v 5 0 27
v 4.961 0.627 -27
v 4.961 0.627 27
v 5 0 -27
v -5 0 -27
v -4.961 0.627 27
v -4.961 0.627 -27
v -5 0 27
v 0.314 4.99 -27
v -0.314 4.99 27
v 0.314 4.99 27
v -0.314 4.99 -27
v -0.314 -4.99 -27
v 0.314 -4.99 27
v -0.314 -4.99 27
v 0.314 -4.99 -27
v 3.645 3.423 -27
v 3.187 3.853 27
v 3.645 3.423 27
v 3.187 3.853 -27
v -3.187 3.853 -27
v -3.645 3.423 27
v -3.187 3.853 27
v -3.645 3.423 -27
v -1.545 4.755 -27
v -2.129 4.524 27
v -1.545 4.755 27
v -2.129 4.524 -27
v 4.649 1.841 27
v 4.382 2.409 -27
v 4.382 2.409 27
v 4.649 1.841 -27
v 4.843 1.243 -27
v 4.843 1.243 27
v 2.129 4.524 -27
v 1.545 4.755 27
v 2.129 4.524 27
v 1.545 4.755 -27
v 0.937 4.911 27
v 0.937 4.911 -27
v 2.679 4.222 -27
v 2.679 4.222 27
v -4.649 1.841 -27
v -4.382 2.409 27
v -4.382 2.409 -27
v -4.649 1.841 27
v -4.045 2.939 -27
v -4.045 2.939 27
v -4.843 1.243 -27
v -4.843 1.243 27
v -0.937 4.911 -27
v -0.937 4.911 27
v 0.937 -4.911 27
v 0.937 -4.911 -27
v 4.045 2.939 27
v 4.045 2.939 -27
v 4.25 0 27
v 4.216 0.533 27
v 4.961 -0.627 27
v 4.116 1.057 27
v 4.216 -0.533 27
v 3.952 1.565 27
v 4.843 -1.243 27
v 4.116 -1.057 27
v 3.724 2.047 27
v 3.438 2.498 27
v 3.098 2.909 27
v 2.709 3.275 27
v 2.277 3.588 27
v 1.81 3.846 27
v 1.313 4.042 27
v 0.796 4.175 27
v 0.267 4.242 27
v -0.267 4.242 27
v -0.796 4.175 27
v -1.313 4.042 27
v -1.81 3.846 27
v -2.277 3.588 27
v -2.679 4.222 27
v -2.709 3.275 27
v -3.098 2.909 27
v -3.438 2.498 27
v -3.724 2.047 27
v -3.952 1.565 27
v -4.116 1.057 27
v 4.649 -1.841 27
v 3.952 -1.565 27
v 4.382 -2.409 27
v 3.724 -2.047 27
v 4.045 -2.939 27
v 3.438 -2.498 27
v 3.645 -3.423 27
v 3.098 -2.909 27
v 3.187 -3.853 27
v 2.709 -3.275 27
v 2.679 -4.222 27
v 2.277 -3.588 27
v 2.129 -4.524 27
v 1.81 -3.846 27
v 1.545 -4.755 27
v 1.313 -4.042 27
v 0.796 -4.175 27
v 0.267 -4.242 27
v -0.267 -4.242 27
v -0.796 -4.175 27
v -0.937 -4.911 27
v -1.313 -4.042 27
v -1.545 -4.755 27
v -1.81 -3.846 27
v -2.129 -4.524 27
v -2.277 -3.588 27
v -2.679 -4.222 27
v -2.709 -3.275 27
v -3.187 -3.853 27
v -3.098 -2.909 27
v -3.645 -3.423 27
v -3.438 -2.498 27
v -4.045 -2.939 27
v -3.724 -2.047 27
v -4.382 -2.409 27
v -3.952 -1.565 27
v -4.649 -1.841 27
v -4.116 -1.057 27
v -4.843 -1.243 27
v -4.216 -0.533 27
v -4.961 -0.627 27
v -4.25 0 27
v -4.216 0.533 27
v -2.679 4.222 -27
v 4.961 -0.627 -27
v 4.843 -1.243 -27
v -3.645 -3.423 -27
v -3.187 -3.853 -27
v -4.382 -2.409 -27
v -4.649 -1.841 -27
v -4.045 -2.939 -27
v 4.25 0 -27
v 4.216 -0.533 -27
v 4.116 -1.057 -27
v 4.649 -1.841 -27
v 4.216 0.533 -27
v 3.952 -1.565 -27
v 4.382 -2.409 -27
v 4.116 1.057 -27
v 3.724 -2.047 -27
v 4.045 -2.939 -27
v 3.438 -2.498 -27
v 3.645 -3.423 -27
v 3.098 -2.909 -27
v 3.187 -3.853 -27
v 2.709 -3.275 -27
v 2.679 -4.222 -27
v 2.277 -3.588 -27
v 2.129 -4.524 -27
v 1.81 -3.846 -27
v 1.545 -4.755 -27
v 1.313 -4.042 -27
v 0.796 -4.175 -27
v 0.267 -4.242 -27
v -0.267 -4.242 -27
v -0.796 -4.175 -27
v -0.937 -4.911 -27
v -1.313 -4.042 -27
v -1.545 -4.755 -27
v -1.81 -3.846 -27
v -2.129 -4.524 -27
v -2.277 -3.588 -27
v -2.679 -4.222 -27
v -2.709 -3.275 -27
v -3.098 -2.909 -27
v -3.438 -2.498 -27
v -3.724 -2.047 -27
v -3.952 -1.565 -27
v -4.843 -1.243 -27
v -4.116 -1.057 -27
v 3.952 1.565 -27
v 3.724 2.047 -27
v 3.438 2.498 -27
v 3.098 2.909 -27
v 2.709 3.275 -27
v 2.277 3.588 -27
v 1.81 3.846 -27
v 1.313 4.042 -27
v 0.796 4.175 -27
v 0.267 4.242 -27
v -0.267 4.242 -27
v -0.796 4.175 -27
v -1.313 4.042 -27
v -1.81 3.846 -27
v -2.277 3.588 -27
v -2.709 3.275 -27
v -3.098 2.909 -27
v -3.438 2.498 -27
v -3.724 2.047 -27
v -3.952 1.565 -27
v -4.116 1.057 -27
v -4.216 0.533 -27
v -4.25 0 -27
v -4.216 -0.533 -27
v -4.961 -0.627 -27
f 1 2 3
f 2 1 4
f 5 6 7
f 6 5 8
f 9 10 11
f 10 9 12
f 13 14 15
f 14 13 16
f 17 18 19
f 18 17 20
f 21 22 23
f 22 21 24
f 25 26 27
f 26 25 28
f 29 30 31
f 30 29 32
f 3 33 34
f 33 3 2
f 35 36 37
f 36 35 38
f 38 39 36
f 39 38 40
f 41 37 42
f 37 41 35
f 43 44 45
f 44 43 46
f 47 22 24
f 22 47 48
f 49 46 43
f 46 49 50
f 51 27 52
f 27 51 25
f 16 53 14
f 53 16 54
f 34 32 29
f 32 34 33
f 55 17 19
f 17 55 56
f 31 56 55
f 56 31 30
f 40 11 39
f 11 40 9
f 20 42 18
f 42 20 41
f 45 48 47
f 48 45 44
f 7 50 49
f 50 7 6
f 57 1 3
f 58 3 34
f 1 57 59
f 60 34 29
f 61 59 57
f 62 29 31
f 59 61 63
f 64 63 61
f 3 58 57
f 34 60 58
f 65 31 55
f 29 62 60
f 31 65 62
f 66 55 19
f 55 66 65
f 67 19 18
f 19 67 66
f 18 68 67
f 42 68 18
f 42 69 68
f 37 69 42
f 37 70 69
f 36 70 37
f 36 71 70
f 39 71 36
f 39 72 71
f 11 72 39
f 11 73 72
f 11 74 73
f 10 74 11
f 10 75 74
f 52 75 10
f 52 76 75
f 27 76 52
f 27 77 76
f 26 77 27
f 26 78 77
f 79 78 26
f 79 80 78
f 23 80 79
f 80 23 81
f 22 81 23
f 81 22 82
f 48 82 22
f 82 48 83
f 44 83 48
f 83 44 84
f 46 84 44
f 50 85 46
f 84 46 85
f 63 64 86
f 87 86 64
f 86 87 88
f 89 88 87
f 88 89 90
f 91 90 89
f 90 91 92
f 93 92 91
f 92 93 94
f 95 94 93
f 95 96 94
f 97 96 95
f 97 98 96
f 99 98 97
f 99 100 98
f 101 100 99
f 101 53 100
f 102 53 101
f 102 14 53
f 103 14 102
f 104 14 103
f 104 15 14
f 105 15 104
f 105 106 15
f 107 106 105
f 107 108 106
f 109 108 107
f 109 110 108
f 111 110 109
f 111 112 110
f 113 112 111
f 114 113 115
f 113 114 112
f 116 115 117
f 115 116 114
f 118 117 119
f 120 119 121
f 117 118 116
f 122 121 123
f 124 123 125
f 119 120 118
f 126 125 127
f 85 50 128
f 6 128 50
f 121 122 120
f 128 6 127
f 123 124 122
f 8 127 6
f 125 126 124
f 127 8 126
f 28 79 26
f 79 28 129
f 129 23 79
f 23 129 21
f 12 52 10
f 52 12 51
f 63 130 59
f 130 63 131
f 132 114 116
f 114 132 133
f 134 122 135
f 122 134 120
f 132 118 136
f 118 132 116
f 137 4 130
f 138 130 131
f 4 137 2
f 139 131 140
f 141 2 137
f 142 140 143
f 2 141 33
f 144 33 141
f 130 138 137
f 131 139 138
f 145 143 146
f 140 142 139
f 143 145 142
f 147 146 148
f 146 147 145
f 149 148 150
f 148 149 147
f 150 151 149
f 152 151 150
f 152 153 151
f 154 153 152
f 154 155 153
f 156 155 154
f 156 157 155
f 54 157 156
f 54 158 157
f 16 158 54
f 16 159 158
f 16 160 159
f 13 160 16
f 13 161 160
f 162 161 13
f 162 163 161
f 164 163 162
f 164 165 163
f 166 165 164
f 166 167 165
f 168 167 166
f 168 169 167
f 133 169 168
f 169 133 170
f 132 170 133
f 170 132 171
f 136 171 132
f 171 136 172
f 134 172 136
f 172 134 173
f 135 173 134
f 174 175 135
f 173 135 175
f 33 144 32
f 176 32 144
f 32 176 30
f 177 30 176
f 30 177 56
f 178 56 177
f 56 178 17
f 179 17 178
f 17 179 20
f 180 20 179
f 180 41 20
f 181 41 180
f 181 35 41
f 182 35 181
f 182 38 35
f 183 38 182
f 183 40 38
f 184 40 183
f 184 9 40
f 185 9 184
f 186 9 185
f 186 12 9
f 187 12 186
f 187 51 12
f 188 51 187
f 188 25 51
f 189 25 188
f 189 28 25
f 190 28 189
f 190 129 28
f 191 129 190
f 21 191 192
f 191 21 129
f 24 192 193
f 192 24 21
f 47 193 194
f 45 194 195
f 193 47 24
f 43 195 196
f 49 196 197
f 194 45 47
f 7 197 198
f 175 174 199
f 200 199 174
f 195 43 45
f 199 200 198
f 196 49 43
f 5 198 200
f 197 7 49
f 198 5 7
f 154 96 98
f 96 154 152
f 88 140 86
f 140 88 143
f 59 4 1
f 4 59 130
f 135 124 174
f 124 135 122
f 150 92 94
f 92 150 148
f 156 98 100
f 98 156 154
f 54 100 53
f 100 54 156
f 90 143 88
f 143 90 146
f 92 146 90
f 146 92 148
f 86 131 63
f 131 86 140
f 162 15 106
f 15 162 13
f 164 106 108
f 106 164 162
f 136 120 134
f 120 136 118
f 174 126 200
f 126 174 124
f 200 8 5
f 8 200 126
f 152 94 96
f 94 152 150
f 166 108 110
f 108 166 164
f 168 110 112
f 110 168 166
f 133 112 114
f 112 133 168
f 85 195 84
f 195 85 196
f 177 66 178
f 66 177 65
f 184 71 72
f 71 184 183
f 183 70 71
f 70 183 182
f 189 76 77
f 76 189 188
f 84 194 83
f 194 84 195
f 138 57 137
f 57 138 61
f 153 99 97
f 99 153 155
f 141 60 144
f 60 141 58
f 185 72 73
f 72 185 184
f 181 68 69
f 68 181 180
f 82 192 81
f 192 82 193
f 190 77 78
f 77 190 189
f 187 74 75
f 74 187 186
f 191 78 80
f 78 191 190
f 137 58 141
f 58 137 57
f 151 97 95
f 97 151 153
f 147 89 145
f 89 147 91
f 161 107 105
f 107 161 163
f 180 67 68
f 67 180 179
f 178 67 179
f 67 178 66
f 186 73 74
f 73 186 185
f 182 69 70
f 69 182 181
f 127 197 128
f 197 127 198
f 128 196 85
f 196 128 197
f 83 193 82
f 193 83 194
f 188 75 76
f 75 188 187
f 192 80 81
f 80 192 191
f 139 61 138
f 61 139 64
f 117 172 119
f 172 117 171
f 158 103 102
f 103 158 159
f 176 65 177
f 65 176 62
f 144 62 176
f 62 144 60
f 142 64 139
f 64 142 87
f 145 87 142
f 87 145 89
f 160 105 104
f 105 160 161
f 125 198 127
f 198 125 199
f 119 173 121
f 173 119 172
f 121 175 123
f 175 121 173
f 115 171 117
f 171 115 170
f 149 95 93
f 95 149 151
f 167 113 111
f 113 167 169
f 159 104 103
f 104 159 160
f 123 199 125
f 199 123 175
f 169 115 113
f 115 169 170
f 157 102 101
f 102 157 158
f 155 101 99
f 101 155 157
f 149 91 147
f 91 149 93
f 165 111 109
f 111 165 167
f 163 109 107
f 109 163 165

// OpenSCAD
$fn = 50;


difference() {
	union() {
		translate(v = [0, 0, -27.0000000000]) {
			cylinder(h = 54, r = 5.0000000000);
		}
	}
	union() {
		translate(v = [0, 0, -100.0000000000]) {
			cylinder(h = 200, r = 4.2500000000);
		}
	}
}
